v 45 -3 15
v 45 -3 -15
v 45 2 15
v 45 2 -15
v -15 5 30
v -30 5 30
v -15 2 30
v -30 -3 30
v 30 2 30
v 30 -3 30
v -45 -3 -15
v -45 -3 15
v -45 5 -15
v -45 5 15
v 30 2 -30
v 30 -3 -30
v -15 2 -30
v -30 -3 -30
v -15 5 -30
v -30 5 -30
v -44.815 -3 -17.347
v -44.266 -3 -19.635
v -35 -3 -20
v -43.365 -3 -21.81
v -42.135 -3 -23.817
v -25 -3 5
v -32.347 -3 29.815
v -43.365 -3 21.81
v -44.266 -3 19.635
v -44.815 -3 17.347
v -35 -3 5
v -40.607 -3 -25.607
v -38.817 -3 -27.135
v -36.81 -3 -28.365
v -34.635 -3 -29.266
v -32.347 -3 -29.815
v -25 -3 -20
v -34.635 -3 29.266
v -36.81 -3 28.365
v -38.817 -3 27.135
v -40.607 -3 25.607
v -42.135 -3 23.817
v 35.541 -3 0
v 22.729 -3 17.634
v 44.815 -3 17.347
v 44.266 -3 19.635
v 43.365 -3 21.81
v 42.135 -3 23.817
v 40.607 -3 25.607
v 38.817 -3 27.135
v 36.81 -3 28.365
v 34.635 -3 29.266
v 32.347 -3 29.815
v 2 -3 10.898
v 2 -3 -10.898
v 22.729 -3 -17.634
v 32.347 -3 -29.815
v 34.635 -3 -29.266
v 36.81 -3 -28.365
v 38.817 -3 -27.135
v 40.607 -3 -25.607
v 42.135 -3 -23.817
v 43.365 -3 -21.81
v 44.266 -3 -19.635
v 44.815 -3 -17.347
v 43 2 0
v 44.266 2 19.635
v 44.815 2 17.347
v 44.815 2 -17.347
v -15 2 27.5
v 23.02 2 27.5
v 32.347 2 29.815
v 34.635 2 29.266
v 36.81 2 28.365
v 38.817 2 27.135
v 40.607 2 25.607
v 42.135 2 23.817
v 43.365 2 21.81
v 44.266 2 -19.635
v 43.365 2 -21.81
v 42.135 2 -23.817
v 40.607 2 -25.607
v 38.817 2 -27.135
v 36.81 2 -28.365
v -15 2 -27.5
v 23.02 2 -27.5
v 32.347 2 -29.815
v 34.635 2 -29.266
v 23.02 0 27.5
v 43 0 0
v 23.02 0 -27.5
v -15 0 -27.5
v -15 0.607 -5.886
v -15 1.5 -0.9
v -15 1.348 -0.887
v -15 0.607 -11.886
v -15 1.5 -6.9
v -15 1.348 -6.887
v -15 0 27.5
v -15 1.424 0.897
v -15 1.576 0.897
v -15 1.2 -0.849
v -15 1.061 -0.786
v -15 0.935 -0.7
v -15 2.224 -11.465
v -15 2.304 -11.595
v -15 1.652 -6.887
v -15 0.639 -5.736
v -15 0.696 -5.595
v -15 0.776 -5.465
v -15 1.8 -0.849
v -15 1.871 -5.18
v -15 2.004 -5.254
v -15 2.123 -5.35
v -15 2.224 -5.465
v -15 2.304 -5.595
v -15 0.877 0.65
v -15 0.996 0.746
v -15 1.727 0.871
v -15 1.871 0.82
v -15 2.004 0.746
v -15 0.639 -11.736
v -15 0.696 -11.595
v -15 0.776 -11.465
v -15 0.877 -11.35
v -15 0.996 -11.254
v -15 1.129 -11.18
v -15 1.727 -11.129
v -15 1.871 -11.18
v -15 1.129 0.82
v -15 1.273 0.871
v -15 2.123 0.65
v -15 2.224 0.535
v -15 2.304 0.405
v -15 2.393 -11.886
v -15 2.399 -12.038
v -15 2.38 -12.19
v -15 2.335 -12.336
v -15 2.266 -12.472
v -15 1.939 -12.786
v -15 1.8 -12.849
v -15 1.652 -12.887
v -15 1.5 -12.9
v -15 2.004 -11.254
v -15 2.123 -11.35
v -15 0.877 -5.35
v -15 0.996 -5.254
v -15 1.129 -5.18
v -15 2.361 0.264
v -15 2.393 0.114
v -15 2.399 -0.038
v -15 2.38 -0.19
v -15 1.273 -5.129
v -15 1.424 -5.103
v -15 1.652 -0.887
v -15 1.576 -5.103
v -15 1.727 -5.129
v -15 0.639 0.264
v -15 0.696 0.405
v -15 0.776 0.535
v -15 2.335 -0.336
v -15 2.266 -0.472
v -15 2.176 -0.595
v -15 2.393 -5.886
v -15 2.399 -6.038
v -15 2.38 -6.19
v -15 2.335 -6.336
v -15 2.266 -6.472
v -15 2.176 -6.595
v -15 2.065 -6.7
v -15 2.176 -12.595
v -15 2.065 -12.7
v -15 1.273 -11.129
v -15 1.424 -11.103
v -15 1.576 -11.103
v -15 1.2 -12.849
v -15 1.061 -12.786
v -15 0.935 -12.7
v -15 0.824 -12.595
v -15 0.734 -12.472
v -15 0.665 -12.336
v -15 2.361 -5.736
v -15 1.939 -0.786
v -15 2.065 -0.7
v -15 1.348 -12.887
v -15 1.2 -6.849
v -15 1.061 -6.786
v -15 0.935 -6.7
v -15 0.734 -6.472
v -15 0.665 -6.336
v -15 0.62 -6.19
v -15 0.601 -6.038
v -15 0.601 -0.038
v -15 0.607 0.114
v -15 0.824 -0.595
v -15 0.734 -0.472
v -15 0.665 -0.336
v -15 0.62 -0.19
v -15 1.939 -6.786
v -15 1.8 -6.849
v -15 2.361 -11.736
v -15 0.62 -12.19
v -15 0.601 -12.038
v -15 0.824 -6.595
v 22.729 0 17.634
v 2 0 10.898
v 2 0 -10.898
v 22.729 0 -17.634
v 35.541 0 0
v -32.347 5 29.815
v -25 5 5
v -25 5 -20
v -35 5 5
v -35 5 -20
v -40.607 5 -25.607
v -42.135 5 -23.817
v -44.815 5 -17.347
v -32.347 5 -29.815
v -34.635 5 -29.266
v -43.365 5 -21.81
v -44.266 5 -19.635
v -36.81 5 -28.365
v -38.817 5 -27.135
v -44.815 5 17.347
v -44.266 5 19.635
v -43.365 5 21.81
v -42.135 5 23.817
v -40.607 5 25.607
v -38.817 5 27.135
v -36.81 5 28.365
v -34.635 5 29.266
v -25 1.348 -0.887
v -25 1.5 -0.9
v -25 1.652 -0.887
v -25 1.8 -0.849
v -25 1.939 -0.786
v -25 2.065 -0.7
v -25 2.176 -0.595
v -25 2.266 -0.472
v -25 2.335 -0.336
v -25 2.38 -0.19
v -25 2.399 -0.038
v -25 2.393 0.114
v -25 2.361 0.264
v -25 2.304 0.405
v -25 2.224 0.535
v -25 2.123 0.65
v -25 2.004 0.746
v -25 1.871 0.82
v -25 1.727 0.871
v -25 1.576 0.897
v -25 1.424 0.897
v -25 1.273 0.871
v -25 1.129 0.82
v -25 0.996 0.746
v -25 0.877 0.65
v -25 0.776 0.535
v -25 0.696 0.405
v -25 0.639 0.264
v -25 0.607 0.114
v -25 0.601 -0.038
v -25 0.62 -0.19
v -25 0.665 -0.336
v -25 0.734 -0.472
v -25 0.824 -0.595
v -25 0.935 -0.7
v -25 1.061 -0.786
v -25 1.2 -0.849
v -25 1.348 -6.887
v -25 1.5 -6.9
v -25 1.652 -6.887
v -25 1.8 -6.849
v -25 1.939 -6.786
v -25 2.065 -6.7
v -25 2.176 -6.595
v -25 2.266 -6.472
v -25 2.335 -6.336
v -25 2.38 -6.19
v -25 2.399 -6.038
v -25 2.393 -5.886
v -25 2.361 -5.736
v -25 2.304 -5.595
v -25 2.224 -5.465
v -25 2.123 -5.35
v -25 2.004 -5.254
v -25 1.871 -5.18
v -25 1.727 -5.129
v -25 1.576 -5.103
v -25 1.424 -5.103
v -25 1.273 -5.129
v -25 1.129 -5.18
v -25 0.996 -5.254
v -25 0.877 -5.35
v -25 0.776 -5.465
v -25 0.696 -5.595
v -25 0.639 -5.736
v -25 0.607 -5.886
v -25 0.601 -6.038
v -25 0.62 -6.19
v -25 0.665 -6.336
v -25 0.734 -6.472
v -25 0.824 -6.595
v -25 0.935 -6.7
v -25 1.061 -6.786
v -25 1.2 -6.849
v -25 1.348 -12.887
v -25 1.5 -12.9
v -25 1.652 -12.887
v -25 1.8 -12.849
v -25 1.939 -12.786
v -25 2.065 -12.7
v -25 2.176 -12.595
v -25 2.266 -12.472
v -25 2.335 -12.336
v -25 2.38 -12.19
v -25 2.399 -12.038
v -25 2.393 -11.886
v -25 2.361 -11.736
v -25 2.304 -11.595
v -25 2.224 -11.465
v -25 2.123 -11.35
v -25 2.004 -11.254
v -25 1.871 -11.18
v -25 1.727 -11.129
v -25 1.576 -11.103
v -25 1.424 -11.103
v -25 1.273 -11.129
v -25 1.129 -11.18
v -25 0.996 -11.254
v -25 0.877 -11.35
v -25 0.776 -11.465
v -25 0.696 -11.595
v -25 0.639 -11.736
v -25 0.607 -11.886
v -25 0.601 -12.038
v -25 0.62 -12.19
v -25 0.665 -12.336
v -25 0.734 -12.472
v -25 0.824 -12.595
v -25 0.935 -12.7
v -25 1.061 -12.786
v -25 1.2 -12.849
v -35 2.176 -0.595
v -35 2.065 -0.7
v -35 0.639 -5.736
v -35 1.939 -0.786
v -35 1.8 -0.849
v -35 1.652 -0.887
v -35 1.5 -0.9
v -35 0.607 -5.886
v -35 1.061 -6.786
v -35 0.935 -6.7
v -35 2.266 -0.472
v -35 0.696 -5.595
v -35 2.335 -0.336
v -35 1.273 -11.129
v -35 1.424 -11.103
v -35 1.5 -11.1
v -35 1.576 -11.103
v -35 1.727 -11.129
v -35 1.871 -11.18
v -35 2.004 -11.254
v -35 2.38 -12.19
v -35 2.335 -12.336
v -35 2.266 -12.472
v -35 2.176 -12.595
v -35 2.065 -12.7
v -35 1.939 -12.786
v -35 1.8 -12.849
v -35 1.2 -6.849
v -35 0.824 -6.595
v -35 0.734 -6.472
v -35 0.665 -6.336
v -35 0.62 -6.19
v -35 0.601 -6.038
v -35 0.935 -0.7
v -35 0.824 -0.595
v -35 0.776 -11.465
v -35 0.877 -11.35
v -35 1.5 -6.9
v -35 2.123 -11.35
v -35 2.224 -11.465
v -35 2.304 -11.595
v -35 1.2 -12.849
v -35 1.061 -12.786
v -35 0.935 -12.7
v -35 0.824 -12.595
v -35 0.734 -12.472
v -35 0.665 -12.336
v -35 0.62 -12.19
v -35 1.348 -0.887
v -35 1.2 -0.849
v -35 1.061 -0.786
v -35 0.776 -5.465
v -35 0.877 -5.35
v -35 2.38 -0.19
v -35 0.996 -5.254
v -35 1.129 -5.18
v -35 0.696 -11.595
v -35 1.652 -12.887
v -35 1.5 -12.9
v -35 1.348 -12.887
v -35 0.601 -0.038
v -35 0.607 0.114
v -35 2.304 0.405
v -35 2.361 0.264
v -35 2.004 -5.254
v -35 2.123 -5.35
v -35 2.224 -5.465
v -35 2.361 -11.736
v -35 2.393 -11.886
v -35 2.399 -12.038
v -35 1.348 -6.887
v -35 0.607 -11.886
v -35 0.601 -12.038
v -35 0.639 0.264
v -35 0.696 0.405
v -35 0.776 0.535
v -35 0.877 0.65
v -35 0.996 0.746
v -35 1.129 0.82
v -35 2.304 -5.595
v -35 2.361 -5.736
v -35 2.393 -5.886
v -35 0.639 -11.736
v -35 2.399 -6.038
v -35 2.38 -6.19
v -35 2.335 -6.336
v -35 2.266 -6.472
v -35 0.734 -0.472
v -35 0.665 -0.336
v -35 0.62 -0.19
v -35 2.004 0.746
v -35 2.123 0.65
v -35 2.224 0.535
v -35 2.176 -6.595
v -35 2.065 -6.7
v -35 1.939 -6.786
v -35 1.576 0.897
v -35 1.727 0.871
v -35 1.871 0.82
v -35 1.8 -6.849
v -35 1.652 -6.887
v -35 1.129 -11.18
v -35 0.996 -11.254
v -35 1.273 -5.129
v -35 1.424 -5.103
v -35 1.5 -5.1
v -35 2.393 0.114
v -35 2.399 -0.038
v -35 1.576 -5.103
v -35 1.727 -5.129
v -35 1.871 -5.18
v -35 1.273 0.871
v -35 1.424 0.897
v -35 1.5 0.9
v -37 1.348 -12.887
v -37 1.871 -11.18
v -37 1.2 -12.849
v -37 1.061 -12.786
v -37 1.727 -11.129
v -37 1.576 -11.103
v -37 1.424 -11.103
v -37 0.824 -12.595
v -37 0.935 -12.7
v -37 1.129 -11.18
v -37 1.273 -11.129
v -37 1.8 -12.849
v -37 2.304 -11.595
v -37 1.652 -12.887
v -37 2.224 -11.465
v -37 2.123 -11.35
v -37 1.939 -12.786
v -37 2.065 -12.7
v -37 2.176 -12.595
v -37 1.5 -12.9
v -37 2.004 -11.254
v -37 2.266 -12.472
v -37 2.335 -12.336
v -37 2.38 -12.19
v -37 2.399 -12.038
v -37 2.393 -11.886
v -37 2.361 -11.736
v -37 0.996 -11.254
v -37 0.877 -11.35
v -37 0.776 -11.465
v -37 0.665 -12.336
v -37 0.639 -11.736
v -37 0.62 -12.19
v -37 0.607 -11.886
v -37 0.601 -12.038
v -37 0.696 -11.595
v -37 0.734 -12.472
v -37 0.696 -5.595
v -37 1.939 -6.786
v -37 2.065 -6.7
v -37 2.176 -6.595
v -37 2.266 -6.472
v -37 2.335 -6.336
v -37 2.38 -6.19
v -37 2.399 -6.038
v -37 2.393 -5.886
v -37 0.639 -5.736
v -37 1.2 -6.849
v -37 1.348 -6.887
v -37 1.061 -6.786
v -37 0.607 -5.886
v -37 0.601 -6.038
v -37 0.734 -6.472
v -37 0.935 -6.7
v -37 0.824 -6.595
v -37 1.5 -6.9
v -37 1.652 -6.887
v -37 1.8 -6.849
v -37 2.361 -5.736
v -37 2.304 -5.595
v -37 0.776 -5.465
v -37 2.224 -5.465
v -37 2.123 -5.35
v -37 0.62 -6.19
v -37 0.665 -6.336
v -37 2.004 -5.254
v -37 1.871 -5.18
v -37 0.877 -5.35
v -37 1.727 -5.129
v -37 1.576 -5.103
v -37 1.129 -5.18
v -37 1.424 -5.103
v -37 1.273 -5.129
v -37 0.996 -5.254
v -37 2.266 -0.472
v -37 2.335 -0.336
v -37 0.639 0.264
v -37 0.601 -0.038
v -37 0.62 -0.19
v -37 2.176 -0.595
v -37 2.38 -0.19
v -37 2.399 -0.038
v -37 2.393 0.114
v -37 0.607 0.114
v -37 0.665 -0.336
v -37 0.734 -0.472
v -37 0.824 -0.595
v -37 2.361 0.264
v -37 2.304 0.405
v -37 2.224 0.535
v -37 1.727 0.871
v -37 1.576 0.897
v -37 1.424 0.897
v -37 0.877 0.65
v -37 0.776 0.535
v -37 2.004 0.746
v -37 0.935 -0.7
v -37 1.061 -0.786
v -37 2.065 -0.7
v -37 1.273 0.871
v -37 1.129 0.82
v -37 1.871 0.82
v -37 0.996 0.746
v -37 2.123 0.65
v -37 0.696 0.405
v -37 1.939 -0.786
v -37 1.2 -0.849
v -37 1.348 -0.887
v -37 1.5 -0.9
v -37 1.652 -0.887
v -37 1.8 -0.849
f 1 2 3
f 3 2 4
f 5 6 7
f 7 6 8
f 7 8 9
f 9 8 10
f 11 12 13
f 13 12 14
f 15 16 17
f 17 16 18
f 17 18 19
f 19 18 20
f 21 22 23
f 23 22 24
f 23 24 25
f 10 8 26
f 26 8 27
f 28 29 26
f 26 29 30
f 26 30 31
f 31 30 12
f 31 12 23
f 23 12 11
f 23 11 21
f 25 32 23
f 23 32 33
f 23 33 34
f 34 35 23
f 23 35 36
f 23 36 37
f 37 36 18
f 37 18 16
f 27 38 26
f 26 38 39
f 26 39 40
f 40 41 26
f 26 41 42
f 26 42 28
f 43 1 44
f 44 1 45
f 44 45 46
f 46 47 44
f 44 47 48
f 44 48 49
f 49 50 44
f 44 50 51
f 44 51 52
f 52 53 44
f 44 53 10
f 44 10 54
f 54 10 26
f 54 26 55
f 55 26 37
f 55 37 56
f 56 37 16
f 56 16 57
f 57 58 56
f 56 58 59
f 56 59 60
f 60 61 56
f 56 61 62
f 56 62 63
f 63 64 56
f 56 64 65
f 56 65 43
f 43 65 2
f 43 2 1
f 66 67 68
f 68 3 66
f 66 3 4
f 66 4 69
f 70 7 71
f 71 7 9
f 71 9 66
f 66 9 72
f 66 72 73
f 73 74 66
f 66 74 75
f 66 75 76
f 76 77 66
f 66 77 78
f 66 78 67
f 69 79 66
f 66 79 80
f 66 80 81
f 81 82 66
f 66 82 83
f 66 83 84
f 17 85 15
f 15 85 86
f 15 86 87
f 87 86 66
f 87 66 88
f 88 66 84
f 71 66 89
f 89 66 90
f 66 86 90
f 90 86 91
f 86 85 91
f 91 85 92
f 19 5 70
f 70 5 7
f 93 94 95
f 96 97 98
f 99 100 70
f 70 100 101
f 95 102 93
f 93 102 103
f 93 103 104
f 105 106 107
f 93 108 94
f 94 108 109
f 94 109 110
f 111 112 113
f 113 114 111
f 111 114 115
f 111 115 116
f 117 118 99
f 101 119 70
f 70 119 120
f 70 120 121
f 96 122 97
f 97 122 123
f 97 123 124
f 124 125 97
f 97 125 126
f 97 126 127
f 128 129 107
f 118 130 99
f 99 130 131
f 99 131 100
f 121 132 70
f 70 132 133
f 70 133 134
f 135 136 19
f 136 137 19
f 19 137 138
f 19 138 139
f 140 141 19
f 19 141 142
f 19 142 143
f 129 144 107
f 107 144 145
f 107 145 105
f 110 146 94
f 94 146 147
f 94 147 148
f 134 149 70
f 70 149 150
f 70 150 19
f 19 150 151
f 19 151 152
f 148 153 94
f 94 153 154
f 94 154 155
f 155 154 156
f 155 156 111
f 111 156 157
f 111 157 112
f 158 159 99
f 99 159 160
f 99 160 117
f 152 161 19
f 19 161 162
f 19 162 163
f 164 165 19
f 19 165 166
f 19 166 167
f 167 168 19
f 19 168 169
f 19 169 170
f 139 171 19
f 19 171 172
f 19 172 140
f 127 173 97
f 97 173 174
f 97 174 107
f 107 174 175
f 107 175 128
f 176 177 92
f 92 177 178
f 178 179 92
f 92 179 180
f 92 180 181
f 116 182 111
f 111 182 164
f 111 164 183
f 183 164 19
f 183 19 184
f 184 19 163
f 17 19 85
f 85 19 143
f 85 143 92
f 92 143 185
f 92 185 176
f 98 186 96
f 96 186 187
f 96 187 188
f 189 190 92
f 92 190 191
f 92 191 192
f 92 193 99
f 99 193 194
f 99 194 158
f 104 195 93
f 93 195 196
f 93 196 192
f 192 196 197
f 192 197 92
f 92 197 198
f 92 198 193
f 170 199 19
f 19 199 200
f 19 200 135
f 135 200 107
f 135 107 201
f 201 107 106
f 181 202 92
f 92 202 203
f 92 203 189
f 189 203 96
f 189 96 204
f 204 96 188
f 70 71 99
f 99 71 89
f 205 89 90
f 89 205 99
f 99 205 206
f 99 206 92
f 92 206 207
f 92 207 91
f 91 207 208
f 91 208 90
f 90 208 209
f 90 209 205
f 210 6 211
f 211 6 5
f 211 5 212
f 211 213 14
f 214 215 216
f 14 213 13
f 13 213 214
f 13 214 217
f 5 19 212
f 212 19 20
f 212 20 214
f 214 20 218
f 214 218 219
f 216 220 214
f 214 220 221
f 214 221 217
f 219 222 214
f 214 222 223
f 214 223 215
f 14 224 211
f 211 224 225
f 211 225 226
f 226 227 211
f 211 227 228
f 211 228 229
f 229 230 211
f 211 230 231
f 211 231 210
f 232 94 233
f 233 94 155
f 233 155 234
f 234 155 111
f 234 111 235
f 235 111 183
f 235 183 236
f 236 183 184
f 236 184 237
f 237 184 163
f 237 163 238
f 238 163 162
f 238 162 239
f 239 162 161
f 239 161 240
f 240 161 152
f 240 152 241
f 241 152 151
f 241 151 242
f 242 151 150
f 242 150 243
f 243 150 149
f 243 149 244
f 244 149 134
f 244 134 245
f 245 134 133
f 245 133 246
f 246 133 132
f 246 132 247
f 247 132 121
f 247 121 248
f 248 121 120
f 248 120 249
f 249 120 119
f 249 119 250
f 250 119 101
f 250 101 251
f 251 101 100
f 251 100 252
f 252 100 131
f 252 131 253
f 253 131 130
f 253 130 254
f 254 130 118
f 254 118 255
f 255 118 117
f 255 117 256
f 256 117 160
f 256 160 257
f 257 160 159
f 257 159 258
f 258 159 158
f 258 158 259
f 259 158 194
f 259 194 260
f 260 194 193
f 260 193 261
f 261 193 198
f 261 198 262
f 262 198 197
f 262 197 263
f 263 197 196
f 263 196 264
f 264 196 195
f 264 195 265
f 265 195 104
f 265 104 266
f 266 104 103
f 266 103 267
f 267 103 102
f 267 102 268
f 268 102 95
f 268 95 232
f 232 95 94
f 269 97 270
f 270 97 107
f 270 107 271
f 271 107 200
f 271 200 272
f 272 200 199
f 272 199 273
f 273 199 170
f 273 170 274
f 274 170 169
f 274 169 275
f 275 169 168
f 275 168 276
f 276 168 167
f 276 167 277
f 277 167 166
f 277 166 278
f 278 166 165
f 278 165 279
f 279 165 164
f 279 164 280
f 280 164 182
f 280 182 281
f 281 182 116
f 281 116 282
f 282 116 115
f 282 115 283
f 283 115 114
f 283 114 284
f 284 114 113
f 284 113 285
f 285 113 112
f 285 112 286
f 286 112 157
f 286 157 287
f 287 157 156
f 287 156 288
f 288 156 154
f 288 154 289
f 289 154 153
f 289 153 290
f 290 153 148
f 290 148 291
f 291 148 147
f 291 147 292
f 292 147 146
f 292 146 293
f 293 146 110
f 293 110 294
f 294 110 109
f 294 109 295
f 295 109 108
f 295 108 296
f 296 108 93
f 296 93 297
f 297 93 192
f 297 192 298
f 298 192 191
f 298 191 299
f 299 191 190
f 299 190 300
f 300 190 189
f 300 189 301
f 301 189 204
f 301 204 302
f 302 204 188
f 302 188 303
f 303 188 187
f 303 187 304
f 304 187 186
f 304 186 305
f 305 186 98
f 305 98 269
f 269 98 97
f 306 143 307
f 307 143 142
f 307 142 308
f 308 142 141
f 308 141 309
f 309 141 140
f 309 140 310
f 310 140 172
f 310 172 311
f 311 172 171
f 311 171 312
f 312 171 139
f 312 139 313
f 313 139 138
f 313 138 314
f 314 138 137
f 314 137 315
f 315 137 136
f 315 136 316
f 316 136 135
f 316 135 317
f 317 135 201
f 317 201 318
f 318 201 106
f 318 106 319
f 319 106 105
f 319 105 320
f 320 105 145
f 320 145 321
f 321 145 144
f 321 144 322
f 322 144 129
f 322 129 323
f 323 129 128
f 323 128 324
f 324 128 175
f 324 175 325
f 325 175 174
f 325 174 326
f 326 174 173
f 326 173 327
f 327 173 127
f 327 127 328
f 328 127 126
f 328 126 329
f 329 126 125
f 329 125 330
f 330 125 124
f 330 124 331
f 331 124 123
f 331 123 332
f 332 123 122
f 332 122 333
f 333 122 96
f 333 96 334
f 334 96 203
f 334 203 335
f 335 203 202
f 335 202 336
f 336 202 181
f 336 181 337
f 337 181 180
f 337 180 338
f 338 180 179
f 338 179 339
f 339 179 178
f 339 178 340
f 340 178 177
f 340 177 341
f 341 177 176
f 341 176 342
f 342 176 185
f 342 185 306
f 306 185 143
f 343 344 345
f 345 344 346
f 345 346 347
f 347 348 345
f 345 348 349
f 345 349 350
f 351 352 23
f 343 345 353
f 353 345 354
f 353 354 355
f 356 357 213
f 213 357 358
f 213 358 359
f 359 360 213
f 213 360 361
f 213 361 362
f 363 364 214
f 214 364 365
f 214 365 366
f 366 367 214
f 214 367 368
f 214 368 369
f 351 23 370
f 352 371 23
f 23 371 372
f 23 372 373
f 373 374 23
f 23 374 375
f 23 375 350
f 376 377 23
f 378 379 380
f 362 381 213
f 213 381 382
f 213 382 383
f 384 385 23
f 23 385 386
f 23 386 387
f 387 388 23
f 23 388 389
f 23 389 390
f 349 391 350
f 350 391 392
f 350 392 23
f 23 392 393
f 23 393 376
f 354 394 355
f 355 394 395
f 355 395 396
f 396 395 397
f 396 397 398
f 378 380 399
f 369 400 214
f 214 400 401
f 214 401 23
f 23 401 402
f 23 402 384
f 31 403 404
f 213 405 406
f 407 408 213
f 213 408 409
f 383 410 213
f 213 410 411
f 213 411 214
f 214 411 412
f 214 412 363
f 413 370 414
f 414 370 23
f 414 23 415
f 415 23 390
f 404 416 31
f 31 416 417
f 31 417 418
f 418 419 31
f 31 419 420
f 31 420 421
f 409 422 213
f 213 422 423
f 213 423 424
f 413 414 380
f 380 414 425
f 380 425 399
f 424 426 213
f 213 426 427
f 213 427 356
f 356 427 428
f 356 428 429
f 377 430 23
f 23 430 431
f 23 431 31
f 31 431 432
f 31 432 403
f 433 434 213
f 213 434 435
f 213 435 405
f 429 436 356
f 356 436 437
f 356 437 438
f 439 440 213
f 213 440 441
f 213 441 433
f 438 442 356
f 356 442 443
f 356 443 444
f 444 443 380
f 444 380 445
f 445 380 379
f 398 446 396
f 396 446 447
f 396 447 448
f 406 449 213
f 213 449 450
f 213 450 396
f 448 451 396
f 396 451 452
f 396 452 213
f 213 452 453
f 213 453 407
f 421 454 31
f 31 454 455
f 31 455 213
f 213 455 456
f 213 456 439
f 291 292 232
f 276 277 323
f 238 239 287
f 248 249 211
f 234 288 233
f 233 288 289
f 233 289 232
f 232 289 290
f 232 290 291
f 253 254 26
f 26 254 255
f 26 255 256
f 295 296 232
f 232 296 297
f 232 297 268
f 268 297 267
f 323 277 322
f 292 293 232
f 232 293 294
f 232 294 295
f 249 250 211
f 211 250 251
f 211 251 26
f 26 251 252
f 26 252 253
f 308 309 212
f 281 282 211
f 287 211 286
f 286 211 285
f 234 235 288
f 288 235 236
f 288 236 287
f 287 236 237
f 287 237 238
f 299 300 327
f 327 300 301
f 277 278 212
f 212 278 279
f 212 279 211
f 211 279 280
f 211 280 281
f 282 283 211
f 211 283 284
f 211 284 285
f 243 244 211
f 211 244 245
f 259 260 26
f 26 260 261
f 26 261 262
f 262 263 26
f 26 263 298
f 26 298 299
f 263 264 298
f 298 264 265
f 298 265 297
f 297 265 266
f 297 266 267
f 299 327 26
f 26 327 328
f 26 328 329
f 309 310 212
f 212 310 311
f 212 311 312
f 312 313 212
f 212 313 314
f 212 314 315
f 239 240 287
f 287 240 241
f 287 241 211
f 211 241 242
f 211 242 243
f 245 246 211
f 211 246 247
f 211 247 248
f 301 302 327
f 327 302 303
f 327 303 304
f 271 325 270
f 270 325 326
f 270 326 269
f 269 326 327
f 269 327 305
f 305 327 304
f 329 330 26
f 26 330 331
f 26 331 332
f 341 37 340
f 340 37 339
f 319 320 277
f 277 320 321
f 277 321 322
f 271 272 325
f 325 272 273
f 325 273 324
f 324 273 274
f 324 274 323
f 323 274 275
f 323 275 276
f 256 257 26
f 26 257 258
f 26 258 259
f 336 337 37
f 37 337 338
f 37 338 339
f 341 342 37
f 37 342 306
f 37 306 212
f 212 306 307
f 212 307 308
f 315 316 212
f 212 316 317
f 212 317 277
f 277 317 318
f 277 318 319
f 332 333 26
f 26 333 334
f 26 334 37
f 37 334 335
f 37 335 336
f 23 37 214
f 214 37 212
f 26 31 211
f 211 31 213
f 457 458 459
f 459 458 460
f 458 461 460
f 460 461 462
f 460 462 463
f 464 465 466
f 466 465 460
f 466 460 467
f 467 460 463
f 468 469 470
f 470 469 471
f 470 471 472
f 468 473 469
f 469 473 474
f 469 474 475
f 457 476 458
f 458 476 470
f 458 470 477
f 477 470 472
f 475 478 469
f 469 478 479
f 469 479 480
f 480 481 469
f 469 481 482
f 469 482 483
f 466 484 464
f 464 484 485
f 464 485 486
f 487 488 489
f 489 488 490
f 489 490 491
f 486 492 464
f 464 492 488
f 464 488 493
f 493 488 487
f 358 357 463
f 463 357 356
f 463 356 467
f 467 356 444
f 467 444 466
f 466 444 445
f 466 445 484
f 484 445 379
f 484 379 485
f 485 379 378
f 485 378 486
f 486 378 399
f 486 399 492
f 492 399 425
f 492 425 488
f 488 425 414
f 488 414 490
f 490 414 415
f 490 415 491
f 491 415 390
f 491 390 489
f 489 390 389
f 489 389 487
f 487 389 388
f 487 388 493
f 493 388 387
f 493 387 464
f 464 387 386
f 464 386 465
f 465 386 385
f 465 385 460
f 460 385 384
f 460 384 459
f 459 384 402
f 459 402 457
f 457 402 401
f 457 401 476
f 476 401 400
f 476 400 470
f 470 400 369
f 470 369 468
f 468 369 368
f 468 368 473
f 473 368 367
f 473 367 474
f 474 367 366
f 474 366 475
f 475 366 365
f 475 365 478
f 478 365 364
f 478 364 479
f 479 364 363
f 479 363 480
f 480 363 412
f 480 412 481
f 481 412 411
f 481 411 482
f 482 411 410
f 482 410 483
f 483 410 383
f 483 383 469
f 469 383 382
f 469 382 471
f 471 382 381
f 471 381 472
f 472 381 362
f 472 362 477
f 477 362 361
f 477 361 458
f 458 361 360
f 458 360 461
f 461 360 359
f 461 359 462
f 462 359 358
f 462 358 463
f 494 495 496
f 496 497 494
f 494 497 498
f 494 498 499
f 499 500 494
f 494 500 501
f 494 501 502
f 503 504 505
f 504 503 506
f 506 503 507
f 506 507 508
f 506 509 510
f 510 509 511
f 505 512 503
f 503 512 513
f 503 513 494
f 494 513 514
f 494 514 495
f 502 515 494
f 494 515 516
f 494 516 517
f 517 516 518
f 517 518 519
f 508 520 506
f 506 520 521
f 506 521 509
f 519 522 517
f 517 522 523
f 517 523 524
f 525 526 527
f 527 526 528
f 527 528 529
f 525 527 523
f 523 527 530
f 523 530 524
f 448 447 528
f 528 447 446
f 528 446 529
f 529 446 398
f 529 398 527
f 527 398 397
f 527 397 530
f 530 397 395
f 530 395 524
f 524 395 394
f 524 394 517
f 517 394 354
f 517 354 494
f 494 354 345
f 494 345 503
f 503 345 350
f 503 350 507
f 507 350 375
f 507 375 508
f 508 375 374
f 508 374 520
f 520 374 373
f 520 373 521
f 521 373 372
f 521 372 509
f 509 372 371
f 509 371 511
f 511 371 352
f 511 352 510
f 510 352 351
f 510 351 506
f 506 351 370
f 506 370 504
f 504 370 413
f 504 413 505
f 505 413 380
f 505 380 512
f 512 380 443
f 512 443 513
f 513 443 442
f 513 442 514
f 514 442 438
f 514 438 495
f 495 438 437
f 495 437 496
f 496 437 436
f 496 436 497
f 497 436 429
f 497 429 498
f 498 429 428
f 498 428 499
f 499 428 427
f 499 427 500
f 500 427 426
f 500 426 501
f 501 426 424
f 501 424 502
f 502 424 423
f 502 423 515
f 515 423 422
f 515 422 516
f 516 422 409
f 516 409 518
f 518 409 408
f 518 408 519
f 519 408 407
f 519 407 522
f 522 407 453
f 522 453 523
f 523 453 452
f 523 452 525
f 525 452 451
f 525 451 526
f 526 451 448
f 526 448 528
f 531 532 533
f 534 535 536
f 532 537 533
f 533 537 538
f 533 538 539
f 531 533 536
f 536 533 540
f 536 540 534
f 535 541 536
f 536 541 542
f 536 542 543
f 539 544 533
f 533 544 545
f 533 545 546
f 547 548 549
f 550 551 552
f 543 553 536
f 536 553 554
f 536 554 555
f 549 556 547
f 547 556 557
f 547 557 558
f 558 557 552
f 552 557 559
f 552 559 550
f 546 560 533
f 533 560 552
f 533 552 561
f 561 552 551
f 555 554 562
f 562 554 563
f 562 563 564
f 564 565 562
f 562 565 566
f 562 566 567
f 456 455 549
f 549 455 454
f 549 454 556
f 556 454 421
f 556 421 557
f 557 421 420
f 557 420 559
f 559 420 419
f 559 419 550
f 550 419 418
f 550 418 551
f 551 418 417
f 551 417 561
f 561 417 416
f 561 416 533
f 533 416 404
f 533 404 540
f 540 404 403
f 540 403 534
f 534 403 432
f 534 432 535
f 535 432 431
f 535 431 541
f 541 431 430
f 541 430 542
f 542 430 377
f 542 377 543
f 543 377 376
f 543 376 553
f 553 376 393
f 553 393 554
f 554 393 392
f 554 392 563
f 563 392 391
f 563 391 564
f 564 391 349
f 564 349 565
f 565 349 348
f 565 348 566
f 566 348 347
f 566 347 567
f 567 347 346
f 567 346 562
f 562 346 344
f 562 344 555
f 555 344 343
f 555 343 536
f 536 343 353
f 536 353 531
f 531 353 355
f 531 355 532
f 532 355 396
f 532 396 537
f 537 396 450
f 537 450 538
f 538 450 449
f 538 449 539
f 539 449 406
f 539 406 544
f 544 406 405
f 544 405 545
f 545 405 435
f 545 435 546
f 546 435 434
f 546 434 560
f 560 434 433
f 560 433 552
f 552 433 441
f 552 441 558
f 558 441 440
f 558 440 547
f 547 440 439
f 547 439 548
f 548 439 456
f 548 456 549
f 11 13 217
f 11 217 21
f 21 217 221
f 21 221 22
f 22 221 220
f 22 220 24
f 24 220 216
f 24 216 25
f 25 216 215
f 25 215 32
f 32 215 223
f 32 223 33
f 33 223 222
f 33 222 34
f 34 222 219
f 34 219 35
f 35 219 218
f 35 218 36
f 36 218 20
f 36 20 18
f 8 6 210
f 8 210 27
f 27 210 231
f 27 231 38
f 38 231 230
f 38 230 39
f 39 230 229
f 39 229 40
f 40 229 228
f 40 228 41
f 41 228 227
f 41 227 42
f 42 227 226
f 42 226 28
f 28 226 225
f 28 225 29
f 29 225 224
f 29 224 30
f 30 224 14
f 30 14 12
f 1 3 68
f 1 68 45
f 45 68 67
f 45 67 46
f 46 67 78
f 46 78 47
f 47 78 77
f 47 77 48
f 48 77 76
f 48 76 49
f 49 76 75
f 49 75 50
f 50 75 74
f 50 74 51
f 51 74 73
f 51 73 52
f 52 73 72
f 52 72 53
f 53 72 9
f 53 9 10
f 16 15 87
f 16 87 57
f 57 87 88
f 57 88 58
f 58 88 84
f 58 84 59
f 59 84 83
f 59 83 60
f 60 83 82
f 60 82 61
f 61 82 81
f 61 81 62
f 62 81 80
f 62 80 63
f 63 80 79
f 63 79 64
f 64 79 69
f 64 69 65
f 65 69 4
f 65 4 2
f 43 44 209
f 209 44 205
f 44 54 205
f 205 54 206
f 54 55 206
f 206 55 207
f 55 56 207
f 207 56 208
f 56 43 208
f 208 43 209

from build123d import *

# Parameters (mm, degrees)
SKETCH1_W           = 90
SKETCH1_H           = 60
BOSS_EXTRUDE1_DEPTH = 3
BOSS_EXTRUDE2_DEPTH = 2
SKETCH4_W           = 30
SKETCH4_H           = 60
BOSS_EXTRUDE4_DEPTH = 3
SKETCH5_R           = 0.9
CUT_EXTRUDE1_DEPTH  = 22
SKETCH6_W           = 10
SKETCH6_H           = 25
CUT_EXTRUDE2_DEPTH  = 9
FILLET1_R           = 15
CUT_EXTRUDE3_DEPTH  = 4


with BuildPart() as part:
    # Sketch1 → Boss-Extrude1 (new body)
    with BuildSketch(Plane(origin=(0, 0, 0), x_dir=(1, 0, 0), z_dir=(0, 1, 0))):
        Rectangle(SKETCH1_W, SKETCH1_H)
    extrude(amount=-BOSS_EXTRUDE1_DEPTH)

    # Sketch2 → Boss-Extrude2 (add)
    with BuildSketch(Plane(origin=(0, 0, 0), x_dir=(1, 0, 0), z_dir=(0, 1, 0))):
        Polygon((45, 30), (-45, 30), (-45, 27.5), (-45, -27.5), (-45, -30), (45, -30), align=None)
        Polygon((43, 0), (23.02008048, 27.5), (-15, 27.5), (-15, -27.5), (23.02008048, -27.5), align=None, mode=Mode.SUBTRACT)
    extrude(amount=BOSS_EXTRUDE2_DEPTH)

    # Sketch4 → Boss-Extrude4 (add)
    with BuildSketch(Plane(origin=(0, 2, 0), x_dir=(1, 0, 0), z_dir=(0, 1, 0))):
        with Locations((-30, 0)):
            Rectangle(SKETCH4_W, SKETCH4_H)
    extrude(amount=BOSS_EXTRUDE4_DEPTH)

    # Sketch5 → Cut-Extrude1 (cut)
    with BuildSketch(Plane(origin=(-15, 0, 0), x_dir=(0, 0, -1), z_dir=(1, 0, 0))):
        with Locations((0, 1.5)):
            Circle(SKETCH5_R)
        with Locations((6, 1.5)):
            Circle(SKETCH5_R)
        with Locations((12, 1.5)):
            Circle(SKETCH5_R)
    extrude(amount=-CUT_EXTRUDE1_DEPTH, mode=Mode.SUBTRACT)

    # Sketch6 → Cut-Extrude2 (cut, through all)
    with BuildSketch(Plane(origin=(0, 5, 0), x_dir=(1, 0, 0), z_dir=(0, 1, 0))):
        with Locations((-30, 7.5)):
            Rectangle(SKETCH6_W, SKETCH6_H)
    extrude(amount=-CUT_EXTRUDE2_DEPTH, mode=Mode.SUBTRACT)

    # Fillet1
    fillet1_edges = [part.edges().sort_by_distance(p)[0] for p in [
        (-45, 1, -30),
        (-45, 1, 30),
        (45, -0.5, 30),
        (45, -0.5, -30),
    ]]
    fillet(fillet1_edges, radius=FILLET1_R)

    # Sketch7 → Cut-Extrude3 (cut, through all)
    with BuildSketch(Plane(origin=(0, 0, 0), x_dir=(1, 0, 0), z_dir=(0, 1, 0))):
        Polygon((35.541019662, 0), (22.729490169, 17.633557569), (2, 10.89813792), (2, -10.89813792), (22.729490169, -17.633557569), align=None)
    extrude(amount=-CUT_EXTRUDE3_DEPTH, mode=Mode.SUBTRACT)


solid = part.part
